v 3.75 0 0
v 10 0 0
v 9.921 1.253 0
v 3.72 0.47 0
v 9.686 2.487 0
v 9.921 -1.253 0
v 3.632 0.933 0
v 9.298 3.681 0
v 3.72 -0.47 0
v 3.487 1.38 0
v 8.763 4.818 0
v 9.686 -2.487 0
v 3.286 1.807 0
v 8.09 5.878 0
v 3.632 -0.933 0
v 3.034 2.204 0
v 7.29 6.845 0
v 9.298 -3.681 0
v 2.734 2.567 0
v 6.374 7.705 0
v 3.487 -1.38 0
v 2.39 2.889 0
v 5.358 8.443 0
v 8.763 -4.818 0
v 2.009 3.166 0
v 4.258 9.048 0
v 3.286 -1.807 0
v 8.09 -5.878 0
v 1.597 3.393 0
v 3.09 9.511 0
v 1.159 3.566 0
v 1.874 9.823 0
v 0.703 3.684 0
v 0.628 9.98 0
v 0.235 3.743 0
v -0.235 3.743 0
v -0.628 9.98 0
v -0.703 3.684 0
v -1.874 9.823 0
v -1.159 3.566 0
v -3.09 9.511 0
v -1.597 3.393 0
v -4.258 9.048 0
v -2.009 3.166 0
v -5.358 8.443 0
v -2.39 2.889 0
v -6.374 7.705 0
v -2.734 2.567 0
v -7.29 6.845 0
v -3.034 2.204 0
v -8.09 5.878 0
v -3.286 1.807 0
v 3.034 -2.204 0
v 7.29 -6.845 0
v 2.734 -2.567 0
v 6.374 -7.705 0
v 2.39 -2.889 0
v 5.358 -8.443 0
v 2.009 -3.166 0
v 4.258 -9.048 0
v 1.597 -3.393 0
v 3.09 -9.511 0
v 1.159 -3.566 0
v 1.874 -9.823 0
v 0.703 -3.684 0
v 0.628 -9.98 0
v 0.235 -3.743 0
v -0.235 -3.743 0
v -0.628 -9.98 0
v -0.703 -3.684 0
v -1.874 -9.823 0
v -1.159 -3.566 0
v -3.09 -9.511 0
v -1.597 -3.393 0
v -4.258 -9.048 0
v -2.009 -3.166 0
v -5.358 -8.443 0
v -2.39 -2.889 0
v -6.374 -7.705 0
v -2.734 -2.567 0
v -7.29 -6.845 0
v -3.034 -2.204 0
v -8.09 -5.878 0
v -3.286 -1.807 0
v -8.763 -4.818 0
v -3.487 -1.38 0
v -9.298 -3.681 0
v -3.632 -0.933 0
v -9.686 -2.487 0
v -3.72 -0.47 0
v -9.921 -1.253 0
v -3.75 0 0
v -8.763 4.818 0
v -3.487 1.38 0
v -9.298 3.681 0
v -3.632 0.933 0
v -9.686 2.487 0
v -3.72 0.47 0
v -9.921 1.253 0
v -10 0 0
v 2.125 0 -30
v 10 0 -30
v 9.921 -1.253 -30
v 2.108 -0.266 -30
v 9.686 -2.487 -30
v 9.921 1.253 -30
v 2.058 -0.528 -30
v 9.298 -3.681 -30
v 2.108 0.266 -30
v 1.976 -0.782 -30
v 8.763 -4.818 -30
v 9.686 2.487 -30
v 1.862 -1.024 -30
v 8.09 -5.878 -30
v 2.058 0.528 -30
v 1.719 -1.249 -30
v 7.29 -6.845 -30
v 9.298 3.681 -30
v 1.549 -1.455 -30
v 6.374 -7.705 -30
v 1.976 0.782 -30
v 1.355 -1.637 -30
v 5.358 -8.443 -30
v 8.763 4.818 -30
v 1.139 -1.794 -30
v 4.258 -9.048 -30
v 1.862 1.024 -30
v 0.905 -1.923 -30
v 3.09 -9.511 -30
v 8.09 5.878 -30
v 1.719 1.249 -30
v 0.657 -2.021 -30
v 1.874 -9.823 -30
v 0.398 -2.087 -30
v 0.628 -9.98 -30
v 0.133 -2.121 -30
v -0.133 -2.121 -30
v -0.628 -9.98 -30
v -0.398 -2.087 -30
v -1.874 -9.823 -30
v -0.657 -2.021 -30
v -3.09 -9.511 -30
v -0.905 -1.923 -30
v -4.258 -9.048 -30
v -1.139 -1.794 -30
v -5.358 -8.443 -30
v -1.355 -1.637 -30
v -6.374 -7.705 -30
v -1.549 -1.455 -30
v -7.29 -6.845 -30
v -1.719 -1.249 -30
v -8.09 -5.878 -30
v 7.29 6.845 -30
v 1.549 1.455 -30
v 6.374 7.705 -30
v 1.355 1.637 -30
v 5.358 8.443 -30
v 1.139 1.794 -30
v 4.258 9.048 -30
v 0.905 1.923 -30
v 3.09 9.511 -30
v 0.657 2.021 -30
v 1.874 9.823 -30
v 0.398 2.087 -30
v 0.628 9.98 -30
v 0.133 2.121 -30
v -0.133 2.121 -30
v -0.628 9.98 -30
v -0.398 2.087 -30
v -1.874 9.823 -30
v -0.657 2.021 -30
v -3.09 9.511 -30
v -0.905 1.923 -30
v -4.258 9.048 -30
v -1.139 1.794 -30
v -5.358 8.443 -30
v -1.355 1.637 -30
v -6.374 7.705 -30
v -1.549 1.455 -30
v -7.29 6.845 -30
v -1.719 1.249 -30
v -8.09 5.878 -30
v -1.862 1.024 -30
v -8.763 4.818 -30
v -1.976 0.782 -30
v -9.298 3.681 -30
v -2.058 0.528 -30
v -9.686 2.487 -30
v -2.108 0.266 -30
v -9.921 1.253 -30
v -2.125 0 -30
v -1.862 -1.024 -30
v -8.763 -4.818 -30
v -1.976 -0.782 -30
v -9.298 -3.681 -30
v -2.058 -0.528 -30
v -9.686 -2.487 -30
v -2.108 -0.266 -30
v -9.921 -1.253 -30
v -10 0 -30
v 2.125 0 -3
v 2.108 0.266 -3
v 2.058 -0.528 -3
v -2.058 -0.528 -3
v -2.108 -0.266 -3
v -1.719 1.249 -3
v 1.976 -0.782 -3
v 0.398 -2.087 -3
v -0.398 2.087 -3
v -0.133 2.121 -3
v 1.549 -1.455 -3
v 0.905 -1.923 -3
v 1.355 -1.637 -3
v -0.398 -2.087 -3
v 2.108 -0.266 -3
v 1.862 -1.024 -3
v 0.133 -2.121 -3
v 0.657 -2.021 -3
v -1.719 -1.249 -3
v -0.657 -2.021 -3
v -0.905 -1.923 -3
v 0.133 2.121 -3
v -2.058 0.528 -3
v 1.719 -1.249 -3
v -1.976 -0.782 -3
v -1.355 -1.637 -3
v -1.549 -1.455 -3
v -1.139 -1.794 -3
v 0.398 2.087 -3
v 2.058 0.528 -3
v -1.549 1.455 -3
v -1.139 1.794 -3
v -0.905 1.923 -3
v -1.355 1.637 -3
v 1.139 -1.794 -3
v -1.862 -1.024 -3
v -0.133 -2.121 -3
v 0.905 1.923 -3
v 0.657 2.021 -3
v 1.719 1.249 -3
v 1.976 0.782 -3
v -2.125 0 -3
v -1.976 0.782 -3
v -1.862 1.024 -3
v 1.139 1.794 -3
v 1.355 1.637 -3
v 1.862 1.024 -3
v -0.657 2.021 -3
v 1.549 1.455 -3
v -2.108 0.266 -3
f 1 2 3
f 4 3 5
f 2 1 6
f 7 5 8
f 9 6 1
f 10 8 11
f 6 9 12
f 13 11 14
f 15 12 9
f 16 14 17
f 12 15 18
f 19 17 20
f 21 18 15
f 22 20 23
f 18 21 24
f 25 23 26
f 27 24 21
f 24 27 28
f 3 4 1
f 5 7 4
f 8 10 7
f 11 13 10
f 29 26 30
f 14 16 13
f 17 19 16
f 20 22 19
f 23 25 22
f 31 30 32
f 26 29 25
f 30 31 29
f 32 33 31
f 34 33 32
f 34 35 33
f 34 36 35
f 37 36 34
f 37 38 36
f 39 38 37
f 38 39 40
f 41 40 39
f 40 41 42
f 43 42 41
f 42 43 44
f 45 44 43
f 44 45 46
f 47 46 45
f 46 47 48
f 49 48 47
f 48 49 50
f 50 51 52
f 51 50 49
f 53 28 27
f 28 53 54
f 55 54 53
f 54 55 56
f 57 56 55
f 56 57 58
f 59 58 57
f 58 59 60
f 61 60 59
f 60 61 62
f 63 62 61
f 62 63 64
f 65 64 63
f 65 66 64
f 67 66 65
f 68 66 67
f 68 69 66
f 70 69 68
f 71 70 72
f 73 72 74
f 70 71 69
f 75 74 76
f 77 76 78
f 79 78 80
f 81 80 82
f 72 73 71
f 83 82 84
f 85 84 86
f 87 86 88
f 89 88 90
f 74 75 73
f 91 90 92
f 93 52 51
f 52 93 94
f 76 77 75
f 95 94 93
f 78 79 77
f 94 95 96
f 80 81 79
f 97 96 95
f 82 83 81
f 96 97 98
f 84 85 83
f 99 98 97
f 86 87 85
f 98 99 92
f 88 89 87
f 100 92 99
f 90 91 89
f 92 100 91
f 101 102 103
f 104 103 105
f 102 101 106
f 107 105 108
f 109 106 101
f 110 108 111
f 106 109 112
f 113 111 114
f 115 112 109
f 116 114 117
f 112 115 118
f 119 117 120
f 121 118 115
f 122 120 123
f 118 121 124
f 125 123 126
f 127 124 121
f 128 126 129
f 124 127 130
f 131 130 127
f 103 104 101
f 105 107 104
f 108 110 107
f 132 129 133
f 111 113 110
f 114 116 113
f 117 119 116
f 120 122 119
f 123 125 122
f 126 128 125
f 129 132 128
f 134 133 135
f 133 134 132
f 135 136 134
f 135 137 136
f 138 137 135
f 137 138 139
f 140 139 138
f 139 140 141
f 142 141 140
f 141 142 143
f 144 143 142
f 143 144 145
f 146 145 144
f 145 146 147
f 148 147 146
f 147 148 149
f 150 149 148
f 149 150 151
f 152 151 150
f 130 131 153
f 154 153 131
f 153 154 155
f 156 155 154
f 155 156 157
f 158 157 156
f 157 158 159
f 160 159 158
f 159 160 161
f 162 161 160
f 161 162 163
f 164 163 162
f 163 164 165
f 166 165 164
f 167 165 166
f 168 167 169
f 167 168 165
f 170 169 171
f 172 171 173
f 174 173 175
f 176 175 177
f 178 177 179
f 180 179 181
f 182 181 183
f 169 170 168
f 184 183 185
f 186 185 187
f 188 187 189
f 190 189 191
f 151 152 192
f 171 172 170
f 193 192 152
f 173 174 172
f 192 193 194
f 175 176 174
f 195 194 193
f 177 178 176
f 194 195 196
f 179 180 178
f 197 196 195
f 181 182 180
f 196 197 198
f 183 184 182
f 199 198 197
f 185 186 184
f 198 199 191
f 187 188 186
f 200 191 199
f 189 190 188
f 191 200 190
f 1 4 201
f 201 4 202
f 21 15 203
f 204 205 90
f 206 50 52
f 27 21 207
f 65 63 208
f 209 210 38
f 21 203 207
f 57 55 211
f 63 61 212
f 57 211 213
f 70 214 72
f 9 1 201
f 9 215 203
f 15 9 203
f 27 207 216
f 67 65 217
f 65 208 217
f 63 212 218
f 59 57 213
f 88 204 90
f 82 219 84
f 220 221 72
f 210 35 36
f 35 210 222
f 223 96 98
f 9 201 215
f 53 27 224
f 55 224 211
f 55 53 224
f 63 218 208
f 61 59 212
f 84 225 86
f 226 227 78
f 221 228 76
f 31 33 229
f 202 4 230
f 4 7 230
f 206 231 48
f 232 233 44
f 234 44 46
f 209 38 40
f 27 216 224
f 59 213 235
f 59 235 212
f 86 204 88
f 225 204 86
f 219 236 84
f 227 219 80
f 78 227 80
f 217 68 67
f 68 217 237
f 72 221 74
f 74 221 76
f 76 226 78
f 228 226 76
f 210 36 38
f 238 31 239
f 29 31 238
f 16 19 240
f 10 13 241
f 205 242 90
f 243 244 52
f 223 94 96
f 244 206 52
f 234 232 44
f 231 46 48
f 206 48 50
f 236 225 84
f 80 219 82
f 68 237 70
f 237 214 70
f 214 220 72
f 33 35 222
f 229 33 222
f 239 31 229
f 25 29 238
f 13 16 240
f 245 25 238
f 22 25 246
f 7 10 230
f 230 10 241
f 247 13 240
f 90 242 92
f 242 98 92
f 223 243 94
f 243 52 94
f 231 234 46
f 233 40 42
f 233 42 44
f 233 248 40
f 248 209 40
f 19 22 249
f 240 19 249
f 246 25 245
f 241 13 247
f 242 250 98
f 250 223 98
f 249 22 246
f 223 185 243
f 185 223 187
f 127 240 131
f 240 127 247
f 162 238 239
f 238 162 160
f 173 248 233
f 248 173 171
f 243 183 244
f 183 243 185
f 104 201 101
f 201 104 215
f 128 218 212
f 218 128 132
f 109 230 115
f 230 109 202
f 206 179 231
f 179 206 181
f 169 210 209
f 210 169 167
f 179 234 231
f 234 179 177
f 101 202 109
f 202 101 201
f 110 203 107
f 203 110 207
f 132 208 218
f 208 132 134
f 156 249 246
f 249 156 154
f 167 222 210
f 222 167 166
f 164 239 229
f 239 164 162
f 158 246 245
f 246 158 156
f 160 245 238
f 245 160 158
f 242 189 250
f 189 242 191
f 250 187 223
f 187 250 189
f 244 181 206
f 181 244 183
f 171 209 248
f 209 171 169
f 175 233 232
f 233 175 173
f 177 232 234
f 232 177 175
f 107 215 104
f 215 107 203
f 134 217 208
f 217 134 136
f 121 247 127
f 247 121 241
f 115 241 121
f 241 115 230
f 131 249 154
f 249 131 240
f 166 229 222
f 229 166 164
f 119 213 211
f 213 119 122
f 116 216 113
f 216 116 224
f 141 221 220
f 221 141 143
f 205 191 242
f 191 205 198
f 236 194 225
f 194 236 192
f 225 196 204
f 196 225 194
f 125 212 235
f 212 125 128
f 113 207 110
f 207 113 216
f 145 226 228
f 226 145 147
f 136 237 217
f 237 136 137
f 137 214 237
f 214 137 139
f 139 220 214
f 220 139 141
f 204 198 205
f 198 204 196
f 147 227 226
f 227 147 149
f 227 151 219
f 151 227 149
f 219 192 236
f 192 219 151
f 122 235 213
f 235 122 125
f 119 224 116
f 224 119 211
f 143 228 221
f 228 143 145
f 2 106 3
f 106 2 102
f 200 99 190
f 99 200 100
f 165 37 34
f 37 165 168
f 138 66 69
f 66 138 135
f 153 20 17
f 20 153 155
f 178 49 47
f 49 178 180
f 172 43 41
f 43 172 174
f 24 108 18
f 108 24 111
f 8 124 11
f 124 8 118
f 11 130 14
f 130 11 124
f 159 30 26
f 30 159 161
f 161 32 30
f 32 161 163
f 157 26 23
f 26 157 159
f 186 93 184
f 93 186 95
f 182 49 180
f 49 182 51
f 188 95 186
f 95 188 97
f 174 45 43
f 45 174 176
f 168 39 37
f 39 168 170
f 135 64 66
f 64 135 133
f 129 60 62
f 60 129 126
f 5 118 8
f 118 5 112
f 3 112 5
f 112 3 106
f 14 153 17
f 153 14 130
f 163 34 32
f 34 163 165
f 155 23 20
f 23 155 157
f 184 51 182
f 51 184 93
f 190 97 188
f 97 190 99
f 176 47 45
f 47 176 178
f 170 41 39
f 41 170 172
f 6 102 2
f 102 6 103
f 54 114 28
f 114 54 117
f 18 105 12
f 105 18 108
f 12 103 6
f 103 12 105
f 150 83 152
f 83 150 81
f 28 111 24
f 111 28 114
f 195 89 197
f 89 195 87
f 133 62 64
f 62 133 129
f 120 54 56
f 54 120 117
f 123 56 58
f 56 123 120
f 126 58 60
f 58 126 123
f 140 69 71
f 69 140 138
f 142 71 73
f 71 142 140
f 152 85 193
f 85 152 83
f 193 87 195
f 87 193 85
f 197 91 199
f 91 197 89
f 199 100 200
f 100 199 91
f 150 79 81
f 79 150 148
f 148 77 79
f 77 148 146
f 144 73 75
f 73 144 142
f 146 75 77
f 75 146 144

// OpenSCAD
$fn = 50;


difference() {
	union() {
		translate(v = [0, 0, -30.0000000000]) {
			cylinder(h = 30, r = 10.0000000000);
		}
		cylinder(h = 0, r = 20.0000000000);
	}
	union() {
		translate(v = [0, 0, 0]) {
			rotate(a = [0, 0, 0]) {
				difference() {
					union() {
						#translate(v = [0, 0, -30.0000000000]) {
							cylinder(h = 30, r = 2.0000000000);
						}
						#translate(v = [0, 0, -3]) {
							cylinder(h = 3, r = 10.0000000000, r1 = 2.1250000000, r2 = 3.7500000000);
						}
						#translate(v = [0, 0, -30.0000000000]) {
							cylinder(h = 30, r = 2.1250000000);
						}
						#translate(v = [0, 0, -30.0000000000]) {
							cylinder(h = 30, r = 2.0000000000);
						}
					}
					union();
				}
			}
		}
	}
}
